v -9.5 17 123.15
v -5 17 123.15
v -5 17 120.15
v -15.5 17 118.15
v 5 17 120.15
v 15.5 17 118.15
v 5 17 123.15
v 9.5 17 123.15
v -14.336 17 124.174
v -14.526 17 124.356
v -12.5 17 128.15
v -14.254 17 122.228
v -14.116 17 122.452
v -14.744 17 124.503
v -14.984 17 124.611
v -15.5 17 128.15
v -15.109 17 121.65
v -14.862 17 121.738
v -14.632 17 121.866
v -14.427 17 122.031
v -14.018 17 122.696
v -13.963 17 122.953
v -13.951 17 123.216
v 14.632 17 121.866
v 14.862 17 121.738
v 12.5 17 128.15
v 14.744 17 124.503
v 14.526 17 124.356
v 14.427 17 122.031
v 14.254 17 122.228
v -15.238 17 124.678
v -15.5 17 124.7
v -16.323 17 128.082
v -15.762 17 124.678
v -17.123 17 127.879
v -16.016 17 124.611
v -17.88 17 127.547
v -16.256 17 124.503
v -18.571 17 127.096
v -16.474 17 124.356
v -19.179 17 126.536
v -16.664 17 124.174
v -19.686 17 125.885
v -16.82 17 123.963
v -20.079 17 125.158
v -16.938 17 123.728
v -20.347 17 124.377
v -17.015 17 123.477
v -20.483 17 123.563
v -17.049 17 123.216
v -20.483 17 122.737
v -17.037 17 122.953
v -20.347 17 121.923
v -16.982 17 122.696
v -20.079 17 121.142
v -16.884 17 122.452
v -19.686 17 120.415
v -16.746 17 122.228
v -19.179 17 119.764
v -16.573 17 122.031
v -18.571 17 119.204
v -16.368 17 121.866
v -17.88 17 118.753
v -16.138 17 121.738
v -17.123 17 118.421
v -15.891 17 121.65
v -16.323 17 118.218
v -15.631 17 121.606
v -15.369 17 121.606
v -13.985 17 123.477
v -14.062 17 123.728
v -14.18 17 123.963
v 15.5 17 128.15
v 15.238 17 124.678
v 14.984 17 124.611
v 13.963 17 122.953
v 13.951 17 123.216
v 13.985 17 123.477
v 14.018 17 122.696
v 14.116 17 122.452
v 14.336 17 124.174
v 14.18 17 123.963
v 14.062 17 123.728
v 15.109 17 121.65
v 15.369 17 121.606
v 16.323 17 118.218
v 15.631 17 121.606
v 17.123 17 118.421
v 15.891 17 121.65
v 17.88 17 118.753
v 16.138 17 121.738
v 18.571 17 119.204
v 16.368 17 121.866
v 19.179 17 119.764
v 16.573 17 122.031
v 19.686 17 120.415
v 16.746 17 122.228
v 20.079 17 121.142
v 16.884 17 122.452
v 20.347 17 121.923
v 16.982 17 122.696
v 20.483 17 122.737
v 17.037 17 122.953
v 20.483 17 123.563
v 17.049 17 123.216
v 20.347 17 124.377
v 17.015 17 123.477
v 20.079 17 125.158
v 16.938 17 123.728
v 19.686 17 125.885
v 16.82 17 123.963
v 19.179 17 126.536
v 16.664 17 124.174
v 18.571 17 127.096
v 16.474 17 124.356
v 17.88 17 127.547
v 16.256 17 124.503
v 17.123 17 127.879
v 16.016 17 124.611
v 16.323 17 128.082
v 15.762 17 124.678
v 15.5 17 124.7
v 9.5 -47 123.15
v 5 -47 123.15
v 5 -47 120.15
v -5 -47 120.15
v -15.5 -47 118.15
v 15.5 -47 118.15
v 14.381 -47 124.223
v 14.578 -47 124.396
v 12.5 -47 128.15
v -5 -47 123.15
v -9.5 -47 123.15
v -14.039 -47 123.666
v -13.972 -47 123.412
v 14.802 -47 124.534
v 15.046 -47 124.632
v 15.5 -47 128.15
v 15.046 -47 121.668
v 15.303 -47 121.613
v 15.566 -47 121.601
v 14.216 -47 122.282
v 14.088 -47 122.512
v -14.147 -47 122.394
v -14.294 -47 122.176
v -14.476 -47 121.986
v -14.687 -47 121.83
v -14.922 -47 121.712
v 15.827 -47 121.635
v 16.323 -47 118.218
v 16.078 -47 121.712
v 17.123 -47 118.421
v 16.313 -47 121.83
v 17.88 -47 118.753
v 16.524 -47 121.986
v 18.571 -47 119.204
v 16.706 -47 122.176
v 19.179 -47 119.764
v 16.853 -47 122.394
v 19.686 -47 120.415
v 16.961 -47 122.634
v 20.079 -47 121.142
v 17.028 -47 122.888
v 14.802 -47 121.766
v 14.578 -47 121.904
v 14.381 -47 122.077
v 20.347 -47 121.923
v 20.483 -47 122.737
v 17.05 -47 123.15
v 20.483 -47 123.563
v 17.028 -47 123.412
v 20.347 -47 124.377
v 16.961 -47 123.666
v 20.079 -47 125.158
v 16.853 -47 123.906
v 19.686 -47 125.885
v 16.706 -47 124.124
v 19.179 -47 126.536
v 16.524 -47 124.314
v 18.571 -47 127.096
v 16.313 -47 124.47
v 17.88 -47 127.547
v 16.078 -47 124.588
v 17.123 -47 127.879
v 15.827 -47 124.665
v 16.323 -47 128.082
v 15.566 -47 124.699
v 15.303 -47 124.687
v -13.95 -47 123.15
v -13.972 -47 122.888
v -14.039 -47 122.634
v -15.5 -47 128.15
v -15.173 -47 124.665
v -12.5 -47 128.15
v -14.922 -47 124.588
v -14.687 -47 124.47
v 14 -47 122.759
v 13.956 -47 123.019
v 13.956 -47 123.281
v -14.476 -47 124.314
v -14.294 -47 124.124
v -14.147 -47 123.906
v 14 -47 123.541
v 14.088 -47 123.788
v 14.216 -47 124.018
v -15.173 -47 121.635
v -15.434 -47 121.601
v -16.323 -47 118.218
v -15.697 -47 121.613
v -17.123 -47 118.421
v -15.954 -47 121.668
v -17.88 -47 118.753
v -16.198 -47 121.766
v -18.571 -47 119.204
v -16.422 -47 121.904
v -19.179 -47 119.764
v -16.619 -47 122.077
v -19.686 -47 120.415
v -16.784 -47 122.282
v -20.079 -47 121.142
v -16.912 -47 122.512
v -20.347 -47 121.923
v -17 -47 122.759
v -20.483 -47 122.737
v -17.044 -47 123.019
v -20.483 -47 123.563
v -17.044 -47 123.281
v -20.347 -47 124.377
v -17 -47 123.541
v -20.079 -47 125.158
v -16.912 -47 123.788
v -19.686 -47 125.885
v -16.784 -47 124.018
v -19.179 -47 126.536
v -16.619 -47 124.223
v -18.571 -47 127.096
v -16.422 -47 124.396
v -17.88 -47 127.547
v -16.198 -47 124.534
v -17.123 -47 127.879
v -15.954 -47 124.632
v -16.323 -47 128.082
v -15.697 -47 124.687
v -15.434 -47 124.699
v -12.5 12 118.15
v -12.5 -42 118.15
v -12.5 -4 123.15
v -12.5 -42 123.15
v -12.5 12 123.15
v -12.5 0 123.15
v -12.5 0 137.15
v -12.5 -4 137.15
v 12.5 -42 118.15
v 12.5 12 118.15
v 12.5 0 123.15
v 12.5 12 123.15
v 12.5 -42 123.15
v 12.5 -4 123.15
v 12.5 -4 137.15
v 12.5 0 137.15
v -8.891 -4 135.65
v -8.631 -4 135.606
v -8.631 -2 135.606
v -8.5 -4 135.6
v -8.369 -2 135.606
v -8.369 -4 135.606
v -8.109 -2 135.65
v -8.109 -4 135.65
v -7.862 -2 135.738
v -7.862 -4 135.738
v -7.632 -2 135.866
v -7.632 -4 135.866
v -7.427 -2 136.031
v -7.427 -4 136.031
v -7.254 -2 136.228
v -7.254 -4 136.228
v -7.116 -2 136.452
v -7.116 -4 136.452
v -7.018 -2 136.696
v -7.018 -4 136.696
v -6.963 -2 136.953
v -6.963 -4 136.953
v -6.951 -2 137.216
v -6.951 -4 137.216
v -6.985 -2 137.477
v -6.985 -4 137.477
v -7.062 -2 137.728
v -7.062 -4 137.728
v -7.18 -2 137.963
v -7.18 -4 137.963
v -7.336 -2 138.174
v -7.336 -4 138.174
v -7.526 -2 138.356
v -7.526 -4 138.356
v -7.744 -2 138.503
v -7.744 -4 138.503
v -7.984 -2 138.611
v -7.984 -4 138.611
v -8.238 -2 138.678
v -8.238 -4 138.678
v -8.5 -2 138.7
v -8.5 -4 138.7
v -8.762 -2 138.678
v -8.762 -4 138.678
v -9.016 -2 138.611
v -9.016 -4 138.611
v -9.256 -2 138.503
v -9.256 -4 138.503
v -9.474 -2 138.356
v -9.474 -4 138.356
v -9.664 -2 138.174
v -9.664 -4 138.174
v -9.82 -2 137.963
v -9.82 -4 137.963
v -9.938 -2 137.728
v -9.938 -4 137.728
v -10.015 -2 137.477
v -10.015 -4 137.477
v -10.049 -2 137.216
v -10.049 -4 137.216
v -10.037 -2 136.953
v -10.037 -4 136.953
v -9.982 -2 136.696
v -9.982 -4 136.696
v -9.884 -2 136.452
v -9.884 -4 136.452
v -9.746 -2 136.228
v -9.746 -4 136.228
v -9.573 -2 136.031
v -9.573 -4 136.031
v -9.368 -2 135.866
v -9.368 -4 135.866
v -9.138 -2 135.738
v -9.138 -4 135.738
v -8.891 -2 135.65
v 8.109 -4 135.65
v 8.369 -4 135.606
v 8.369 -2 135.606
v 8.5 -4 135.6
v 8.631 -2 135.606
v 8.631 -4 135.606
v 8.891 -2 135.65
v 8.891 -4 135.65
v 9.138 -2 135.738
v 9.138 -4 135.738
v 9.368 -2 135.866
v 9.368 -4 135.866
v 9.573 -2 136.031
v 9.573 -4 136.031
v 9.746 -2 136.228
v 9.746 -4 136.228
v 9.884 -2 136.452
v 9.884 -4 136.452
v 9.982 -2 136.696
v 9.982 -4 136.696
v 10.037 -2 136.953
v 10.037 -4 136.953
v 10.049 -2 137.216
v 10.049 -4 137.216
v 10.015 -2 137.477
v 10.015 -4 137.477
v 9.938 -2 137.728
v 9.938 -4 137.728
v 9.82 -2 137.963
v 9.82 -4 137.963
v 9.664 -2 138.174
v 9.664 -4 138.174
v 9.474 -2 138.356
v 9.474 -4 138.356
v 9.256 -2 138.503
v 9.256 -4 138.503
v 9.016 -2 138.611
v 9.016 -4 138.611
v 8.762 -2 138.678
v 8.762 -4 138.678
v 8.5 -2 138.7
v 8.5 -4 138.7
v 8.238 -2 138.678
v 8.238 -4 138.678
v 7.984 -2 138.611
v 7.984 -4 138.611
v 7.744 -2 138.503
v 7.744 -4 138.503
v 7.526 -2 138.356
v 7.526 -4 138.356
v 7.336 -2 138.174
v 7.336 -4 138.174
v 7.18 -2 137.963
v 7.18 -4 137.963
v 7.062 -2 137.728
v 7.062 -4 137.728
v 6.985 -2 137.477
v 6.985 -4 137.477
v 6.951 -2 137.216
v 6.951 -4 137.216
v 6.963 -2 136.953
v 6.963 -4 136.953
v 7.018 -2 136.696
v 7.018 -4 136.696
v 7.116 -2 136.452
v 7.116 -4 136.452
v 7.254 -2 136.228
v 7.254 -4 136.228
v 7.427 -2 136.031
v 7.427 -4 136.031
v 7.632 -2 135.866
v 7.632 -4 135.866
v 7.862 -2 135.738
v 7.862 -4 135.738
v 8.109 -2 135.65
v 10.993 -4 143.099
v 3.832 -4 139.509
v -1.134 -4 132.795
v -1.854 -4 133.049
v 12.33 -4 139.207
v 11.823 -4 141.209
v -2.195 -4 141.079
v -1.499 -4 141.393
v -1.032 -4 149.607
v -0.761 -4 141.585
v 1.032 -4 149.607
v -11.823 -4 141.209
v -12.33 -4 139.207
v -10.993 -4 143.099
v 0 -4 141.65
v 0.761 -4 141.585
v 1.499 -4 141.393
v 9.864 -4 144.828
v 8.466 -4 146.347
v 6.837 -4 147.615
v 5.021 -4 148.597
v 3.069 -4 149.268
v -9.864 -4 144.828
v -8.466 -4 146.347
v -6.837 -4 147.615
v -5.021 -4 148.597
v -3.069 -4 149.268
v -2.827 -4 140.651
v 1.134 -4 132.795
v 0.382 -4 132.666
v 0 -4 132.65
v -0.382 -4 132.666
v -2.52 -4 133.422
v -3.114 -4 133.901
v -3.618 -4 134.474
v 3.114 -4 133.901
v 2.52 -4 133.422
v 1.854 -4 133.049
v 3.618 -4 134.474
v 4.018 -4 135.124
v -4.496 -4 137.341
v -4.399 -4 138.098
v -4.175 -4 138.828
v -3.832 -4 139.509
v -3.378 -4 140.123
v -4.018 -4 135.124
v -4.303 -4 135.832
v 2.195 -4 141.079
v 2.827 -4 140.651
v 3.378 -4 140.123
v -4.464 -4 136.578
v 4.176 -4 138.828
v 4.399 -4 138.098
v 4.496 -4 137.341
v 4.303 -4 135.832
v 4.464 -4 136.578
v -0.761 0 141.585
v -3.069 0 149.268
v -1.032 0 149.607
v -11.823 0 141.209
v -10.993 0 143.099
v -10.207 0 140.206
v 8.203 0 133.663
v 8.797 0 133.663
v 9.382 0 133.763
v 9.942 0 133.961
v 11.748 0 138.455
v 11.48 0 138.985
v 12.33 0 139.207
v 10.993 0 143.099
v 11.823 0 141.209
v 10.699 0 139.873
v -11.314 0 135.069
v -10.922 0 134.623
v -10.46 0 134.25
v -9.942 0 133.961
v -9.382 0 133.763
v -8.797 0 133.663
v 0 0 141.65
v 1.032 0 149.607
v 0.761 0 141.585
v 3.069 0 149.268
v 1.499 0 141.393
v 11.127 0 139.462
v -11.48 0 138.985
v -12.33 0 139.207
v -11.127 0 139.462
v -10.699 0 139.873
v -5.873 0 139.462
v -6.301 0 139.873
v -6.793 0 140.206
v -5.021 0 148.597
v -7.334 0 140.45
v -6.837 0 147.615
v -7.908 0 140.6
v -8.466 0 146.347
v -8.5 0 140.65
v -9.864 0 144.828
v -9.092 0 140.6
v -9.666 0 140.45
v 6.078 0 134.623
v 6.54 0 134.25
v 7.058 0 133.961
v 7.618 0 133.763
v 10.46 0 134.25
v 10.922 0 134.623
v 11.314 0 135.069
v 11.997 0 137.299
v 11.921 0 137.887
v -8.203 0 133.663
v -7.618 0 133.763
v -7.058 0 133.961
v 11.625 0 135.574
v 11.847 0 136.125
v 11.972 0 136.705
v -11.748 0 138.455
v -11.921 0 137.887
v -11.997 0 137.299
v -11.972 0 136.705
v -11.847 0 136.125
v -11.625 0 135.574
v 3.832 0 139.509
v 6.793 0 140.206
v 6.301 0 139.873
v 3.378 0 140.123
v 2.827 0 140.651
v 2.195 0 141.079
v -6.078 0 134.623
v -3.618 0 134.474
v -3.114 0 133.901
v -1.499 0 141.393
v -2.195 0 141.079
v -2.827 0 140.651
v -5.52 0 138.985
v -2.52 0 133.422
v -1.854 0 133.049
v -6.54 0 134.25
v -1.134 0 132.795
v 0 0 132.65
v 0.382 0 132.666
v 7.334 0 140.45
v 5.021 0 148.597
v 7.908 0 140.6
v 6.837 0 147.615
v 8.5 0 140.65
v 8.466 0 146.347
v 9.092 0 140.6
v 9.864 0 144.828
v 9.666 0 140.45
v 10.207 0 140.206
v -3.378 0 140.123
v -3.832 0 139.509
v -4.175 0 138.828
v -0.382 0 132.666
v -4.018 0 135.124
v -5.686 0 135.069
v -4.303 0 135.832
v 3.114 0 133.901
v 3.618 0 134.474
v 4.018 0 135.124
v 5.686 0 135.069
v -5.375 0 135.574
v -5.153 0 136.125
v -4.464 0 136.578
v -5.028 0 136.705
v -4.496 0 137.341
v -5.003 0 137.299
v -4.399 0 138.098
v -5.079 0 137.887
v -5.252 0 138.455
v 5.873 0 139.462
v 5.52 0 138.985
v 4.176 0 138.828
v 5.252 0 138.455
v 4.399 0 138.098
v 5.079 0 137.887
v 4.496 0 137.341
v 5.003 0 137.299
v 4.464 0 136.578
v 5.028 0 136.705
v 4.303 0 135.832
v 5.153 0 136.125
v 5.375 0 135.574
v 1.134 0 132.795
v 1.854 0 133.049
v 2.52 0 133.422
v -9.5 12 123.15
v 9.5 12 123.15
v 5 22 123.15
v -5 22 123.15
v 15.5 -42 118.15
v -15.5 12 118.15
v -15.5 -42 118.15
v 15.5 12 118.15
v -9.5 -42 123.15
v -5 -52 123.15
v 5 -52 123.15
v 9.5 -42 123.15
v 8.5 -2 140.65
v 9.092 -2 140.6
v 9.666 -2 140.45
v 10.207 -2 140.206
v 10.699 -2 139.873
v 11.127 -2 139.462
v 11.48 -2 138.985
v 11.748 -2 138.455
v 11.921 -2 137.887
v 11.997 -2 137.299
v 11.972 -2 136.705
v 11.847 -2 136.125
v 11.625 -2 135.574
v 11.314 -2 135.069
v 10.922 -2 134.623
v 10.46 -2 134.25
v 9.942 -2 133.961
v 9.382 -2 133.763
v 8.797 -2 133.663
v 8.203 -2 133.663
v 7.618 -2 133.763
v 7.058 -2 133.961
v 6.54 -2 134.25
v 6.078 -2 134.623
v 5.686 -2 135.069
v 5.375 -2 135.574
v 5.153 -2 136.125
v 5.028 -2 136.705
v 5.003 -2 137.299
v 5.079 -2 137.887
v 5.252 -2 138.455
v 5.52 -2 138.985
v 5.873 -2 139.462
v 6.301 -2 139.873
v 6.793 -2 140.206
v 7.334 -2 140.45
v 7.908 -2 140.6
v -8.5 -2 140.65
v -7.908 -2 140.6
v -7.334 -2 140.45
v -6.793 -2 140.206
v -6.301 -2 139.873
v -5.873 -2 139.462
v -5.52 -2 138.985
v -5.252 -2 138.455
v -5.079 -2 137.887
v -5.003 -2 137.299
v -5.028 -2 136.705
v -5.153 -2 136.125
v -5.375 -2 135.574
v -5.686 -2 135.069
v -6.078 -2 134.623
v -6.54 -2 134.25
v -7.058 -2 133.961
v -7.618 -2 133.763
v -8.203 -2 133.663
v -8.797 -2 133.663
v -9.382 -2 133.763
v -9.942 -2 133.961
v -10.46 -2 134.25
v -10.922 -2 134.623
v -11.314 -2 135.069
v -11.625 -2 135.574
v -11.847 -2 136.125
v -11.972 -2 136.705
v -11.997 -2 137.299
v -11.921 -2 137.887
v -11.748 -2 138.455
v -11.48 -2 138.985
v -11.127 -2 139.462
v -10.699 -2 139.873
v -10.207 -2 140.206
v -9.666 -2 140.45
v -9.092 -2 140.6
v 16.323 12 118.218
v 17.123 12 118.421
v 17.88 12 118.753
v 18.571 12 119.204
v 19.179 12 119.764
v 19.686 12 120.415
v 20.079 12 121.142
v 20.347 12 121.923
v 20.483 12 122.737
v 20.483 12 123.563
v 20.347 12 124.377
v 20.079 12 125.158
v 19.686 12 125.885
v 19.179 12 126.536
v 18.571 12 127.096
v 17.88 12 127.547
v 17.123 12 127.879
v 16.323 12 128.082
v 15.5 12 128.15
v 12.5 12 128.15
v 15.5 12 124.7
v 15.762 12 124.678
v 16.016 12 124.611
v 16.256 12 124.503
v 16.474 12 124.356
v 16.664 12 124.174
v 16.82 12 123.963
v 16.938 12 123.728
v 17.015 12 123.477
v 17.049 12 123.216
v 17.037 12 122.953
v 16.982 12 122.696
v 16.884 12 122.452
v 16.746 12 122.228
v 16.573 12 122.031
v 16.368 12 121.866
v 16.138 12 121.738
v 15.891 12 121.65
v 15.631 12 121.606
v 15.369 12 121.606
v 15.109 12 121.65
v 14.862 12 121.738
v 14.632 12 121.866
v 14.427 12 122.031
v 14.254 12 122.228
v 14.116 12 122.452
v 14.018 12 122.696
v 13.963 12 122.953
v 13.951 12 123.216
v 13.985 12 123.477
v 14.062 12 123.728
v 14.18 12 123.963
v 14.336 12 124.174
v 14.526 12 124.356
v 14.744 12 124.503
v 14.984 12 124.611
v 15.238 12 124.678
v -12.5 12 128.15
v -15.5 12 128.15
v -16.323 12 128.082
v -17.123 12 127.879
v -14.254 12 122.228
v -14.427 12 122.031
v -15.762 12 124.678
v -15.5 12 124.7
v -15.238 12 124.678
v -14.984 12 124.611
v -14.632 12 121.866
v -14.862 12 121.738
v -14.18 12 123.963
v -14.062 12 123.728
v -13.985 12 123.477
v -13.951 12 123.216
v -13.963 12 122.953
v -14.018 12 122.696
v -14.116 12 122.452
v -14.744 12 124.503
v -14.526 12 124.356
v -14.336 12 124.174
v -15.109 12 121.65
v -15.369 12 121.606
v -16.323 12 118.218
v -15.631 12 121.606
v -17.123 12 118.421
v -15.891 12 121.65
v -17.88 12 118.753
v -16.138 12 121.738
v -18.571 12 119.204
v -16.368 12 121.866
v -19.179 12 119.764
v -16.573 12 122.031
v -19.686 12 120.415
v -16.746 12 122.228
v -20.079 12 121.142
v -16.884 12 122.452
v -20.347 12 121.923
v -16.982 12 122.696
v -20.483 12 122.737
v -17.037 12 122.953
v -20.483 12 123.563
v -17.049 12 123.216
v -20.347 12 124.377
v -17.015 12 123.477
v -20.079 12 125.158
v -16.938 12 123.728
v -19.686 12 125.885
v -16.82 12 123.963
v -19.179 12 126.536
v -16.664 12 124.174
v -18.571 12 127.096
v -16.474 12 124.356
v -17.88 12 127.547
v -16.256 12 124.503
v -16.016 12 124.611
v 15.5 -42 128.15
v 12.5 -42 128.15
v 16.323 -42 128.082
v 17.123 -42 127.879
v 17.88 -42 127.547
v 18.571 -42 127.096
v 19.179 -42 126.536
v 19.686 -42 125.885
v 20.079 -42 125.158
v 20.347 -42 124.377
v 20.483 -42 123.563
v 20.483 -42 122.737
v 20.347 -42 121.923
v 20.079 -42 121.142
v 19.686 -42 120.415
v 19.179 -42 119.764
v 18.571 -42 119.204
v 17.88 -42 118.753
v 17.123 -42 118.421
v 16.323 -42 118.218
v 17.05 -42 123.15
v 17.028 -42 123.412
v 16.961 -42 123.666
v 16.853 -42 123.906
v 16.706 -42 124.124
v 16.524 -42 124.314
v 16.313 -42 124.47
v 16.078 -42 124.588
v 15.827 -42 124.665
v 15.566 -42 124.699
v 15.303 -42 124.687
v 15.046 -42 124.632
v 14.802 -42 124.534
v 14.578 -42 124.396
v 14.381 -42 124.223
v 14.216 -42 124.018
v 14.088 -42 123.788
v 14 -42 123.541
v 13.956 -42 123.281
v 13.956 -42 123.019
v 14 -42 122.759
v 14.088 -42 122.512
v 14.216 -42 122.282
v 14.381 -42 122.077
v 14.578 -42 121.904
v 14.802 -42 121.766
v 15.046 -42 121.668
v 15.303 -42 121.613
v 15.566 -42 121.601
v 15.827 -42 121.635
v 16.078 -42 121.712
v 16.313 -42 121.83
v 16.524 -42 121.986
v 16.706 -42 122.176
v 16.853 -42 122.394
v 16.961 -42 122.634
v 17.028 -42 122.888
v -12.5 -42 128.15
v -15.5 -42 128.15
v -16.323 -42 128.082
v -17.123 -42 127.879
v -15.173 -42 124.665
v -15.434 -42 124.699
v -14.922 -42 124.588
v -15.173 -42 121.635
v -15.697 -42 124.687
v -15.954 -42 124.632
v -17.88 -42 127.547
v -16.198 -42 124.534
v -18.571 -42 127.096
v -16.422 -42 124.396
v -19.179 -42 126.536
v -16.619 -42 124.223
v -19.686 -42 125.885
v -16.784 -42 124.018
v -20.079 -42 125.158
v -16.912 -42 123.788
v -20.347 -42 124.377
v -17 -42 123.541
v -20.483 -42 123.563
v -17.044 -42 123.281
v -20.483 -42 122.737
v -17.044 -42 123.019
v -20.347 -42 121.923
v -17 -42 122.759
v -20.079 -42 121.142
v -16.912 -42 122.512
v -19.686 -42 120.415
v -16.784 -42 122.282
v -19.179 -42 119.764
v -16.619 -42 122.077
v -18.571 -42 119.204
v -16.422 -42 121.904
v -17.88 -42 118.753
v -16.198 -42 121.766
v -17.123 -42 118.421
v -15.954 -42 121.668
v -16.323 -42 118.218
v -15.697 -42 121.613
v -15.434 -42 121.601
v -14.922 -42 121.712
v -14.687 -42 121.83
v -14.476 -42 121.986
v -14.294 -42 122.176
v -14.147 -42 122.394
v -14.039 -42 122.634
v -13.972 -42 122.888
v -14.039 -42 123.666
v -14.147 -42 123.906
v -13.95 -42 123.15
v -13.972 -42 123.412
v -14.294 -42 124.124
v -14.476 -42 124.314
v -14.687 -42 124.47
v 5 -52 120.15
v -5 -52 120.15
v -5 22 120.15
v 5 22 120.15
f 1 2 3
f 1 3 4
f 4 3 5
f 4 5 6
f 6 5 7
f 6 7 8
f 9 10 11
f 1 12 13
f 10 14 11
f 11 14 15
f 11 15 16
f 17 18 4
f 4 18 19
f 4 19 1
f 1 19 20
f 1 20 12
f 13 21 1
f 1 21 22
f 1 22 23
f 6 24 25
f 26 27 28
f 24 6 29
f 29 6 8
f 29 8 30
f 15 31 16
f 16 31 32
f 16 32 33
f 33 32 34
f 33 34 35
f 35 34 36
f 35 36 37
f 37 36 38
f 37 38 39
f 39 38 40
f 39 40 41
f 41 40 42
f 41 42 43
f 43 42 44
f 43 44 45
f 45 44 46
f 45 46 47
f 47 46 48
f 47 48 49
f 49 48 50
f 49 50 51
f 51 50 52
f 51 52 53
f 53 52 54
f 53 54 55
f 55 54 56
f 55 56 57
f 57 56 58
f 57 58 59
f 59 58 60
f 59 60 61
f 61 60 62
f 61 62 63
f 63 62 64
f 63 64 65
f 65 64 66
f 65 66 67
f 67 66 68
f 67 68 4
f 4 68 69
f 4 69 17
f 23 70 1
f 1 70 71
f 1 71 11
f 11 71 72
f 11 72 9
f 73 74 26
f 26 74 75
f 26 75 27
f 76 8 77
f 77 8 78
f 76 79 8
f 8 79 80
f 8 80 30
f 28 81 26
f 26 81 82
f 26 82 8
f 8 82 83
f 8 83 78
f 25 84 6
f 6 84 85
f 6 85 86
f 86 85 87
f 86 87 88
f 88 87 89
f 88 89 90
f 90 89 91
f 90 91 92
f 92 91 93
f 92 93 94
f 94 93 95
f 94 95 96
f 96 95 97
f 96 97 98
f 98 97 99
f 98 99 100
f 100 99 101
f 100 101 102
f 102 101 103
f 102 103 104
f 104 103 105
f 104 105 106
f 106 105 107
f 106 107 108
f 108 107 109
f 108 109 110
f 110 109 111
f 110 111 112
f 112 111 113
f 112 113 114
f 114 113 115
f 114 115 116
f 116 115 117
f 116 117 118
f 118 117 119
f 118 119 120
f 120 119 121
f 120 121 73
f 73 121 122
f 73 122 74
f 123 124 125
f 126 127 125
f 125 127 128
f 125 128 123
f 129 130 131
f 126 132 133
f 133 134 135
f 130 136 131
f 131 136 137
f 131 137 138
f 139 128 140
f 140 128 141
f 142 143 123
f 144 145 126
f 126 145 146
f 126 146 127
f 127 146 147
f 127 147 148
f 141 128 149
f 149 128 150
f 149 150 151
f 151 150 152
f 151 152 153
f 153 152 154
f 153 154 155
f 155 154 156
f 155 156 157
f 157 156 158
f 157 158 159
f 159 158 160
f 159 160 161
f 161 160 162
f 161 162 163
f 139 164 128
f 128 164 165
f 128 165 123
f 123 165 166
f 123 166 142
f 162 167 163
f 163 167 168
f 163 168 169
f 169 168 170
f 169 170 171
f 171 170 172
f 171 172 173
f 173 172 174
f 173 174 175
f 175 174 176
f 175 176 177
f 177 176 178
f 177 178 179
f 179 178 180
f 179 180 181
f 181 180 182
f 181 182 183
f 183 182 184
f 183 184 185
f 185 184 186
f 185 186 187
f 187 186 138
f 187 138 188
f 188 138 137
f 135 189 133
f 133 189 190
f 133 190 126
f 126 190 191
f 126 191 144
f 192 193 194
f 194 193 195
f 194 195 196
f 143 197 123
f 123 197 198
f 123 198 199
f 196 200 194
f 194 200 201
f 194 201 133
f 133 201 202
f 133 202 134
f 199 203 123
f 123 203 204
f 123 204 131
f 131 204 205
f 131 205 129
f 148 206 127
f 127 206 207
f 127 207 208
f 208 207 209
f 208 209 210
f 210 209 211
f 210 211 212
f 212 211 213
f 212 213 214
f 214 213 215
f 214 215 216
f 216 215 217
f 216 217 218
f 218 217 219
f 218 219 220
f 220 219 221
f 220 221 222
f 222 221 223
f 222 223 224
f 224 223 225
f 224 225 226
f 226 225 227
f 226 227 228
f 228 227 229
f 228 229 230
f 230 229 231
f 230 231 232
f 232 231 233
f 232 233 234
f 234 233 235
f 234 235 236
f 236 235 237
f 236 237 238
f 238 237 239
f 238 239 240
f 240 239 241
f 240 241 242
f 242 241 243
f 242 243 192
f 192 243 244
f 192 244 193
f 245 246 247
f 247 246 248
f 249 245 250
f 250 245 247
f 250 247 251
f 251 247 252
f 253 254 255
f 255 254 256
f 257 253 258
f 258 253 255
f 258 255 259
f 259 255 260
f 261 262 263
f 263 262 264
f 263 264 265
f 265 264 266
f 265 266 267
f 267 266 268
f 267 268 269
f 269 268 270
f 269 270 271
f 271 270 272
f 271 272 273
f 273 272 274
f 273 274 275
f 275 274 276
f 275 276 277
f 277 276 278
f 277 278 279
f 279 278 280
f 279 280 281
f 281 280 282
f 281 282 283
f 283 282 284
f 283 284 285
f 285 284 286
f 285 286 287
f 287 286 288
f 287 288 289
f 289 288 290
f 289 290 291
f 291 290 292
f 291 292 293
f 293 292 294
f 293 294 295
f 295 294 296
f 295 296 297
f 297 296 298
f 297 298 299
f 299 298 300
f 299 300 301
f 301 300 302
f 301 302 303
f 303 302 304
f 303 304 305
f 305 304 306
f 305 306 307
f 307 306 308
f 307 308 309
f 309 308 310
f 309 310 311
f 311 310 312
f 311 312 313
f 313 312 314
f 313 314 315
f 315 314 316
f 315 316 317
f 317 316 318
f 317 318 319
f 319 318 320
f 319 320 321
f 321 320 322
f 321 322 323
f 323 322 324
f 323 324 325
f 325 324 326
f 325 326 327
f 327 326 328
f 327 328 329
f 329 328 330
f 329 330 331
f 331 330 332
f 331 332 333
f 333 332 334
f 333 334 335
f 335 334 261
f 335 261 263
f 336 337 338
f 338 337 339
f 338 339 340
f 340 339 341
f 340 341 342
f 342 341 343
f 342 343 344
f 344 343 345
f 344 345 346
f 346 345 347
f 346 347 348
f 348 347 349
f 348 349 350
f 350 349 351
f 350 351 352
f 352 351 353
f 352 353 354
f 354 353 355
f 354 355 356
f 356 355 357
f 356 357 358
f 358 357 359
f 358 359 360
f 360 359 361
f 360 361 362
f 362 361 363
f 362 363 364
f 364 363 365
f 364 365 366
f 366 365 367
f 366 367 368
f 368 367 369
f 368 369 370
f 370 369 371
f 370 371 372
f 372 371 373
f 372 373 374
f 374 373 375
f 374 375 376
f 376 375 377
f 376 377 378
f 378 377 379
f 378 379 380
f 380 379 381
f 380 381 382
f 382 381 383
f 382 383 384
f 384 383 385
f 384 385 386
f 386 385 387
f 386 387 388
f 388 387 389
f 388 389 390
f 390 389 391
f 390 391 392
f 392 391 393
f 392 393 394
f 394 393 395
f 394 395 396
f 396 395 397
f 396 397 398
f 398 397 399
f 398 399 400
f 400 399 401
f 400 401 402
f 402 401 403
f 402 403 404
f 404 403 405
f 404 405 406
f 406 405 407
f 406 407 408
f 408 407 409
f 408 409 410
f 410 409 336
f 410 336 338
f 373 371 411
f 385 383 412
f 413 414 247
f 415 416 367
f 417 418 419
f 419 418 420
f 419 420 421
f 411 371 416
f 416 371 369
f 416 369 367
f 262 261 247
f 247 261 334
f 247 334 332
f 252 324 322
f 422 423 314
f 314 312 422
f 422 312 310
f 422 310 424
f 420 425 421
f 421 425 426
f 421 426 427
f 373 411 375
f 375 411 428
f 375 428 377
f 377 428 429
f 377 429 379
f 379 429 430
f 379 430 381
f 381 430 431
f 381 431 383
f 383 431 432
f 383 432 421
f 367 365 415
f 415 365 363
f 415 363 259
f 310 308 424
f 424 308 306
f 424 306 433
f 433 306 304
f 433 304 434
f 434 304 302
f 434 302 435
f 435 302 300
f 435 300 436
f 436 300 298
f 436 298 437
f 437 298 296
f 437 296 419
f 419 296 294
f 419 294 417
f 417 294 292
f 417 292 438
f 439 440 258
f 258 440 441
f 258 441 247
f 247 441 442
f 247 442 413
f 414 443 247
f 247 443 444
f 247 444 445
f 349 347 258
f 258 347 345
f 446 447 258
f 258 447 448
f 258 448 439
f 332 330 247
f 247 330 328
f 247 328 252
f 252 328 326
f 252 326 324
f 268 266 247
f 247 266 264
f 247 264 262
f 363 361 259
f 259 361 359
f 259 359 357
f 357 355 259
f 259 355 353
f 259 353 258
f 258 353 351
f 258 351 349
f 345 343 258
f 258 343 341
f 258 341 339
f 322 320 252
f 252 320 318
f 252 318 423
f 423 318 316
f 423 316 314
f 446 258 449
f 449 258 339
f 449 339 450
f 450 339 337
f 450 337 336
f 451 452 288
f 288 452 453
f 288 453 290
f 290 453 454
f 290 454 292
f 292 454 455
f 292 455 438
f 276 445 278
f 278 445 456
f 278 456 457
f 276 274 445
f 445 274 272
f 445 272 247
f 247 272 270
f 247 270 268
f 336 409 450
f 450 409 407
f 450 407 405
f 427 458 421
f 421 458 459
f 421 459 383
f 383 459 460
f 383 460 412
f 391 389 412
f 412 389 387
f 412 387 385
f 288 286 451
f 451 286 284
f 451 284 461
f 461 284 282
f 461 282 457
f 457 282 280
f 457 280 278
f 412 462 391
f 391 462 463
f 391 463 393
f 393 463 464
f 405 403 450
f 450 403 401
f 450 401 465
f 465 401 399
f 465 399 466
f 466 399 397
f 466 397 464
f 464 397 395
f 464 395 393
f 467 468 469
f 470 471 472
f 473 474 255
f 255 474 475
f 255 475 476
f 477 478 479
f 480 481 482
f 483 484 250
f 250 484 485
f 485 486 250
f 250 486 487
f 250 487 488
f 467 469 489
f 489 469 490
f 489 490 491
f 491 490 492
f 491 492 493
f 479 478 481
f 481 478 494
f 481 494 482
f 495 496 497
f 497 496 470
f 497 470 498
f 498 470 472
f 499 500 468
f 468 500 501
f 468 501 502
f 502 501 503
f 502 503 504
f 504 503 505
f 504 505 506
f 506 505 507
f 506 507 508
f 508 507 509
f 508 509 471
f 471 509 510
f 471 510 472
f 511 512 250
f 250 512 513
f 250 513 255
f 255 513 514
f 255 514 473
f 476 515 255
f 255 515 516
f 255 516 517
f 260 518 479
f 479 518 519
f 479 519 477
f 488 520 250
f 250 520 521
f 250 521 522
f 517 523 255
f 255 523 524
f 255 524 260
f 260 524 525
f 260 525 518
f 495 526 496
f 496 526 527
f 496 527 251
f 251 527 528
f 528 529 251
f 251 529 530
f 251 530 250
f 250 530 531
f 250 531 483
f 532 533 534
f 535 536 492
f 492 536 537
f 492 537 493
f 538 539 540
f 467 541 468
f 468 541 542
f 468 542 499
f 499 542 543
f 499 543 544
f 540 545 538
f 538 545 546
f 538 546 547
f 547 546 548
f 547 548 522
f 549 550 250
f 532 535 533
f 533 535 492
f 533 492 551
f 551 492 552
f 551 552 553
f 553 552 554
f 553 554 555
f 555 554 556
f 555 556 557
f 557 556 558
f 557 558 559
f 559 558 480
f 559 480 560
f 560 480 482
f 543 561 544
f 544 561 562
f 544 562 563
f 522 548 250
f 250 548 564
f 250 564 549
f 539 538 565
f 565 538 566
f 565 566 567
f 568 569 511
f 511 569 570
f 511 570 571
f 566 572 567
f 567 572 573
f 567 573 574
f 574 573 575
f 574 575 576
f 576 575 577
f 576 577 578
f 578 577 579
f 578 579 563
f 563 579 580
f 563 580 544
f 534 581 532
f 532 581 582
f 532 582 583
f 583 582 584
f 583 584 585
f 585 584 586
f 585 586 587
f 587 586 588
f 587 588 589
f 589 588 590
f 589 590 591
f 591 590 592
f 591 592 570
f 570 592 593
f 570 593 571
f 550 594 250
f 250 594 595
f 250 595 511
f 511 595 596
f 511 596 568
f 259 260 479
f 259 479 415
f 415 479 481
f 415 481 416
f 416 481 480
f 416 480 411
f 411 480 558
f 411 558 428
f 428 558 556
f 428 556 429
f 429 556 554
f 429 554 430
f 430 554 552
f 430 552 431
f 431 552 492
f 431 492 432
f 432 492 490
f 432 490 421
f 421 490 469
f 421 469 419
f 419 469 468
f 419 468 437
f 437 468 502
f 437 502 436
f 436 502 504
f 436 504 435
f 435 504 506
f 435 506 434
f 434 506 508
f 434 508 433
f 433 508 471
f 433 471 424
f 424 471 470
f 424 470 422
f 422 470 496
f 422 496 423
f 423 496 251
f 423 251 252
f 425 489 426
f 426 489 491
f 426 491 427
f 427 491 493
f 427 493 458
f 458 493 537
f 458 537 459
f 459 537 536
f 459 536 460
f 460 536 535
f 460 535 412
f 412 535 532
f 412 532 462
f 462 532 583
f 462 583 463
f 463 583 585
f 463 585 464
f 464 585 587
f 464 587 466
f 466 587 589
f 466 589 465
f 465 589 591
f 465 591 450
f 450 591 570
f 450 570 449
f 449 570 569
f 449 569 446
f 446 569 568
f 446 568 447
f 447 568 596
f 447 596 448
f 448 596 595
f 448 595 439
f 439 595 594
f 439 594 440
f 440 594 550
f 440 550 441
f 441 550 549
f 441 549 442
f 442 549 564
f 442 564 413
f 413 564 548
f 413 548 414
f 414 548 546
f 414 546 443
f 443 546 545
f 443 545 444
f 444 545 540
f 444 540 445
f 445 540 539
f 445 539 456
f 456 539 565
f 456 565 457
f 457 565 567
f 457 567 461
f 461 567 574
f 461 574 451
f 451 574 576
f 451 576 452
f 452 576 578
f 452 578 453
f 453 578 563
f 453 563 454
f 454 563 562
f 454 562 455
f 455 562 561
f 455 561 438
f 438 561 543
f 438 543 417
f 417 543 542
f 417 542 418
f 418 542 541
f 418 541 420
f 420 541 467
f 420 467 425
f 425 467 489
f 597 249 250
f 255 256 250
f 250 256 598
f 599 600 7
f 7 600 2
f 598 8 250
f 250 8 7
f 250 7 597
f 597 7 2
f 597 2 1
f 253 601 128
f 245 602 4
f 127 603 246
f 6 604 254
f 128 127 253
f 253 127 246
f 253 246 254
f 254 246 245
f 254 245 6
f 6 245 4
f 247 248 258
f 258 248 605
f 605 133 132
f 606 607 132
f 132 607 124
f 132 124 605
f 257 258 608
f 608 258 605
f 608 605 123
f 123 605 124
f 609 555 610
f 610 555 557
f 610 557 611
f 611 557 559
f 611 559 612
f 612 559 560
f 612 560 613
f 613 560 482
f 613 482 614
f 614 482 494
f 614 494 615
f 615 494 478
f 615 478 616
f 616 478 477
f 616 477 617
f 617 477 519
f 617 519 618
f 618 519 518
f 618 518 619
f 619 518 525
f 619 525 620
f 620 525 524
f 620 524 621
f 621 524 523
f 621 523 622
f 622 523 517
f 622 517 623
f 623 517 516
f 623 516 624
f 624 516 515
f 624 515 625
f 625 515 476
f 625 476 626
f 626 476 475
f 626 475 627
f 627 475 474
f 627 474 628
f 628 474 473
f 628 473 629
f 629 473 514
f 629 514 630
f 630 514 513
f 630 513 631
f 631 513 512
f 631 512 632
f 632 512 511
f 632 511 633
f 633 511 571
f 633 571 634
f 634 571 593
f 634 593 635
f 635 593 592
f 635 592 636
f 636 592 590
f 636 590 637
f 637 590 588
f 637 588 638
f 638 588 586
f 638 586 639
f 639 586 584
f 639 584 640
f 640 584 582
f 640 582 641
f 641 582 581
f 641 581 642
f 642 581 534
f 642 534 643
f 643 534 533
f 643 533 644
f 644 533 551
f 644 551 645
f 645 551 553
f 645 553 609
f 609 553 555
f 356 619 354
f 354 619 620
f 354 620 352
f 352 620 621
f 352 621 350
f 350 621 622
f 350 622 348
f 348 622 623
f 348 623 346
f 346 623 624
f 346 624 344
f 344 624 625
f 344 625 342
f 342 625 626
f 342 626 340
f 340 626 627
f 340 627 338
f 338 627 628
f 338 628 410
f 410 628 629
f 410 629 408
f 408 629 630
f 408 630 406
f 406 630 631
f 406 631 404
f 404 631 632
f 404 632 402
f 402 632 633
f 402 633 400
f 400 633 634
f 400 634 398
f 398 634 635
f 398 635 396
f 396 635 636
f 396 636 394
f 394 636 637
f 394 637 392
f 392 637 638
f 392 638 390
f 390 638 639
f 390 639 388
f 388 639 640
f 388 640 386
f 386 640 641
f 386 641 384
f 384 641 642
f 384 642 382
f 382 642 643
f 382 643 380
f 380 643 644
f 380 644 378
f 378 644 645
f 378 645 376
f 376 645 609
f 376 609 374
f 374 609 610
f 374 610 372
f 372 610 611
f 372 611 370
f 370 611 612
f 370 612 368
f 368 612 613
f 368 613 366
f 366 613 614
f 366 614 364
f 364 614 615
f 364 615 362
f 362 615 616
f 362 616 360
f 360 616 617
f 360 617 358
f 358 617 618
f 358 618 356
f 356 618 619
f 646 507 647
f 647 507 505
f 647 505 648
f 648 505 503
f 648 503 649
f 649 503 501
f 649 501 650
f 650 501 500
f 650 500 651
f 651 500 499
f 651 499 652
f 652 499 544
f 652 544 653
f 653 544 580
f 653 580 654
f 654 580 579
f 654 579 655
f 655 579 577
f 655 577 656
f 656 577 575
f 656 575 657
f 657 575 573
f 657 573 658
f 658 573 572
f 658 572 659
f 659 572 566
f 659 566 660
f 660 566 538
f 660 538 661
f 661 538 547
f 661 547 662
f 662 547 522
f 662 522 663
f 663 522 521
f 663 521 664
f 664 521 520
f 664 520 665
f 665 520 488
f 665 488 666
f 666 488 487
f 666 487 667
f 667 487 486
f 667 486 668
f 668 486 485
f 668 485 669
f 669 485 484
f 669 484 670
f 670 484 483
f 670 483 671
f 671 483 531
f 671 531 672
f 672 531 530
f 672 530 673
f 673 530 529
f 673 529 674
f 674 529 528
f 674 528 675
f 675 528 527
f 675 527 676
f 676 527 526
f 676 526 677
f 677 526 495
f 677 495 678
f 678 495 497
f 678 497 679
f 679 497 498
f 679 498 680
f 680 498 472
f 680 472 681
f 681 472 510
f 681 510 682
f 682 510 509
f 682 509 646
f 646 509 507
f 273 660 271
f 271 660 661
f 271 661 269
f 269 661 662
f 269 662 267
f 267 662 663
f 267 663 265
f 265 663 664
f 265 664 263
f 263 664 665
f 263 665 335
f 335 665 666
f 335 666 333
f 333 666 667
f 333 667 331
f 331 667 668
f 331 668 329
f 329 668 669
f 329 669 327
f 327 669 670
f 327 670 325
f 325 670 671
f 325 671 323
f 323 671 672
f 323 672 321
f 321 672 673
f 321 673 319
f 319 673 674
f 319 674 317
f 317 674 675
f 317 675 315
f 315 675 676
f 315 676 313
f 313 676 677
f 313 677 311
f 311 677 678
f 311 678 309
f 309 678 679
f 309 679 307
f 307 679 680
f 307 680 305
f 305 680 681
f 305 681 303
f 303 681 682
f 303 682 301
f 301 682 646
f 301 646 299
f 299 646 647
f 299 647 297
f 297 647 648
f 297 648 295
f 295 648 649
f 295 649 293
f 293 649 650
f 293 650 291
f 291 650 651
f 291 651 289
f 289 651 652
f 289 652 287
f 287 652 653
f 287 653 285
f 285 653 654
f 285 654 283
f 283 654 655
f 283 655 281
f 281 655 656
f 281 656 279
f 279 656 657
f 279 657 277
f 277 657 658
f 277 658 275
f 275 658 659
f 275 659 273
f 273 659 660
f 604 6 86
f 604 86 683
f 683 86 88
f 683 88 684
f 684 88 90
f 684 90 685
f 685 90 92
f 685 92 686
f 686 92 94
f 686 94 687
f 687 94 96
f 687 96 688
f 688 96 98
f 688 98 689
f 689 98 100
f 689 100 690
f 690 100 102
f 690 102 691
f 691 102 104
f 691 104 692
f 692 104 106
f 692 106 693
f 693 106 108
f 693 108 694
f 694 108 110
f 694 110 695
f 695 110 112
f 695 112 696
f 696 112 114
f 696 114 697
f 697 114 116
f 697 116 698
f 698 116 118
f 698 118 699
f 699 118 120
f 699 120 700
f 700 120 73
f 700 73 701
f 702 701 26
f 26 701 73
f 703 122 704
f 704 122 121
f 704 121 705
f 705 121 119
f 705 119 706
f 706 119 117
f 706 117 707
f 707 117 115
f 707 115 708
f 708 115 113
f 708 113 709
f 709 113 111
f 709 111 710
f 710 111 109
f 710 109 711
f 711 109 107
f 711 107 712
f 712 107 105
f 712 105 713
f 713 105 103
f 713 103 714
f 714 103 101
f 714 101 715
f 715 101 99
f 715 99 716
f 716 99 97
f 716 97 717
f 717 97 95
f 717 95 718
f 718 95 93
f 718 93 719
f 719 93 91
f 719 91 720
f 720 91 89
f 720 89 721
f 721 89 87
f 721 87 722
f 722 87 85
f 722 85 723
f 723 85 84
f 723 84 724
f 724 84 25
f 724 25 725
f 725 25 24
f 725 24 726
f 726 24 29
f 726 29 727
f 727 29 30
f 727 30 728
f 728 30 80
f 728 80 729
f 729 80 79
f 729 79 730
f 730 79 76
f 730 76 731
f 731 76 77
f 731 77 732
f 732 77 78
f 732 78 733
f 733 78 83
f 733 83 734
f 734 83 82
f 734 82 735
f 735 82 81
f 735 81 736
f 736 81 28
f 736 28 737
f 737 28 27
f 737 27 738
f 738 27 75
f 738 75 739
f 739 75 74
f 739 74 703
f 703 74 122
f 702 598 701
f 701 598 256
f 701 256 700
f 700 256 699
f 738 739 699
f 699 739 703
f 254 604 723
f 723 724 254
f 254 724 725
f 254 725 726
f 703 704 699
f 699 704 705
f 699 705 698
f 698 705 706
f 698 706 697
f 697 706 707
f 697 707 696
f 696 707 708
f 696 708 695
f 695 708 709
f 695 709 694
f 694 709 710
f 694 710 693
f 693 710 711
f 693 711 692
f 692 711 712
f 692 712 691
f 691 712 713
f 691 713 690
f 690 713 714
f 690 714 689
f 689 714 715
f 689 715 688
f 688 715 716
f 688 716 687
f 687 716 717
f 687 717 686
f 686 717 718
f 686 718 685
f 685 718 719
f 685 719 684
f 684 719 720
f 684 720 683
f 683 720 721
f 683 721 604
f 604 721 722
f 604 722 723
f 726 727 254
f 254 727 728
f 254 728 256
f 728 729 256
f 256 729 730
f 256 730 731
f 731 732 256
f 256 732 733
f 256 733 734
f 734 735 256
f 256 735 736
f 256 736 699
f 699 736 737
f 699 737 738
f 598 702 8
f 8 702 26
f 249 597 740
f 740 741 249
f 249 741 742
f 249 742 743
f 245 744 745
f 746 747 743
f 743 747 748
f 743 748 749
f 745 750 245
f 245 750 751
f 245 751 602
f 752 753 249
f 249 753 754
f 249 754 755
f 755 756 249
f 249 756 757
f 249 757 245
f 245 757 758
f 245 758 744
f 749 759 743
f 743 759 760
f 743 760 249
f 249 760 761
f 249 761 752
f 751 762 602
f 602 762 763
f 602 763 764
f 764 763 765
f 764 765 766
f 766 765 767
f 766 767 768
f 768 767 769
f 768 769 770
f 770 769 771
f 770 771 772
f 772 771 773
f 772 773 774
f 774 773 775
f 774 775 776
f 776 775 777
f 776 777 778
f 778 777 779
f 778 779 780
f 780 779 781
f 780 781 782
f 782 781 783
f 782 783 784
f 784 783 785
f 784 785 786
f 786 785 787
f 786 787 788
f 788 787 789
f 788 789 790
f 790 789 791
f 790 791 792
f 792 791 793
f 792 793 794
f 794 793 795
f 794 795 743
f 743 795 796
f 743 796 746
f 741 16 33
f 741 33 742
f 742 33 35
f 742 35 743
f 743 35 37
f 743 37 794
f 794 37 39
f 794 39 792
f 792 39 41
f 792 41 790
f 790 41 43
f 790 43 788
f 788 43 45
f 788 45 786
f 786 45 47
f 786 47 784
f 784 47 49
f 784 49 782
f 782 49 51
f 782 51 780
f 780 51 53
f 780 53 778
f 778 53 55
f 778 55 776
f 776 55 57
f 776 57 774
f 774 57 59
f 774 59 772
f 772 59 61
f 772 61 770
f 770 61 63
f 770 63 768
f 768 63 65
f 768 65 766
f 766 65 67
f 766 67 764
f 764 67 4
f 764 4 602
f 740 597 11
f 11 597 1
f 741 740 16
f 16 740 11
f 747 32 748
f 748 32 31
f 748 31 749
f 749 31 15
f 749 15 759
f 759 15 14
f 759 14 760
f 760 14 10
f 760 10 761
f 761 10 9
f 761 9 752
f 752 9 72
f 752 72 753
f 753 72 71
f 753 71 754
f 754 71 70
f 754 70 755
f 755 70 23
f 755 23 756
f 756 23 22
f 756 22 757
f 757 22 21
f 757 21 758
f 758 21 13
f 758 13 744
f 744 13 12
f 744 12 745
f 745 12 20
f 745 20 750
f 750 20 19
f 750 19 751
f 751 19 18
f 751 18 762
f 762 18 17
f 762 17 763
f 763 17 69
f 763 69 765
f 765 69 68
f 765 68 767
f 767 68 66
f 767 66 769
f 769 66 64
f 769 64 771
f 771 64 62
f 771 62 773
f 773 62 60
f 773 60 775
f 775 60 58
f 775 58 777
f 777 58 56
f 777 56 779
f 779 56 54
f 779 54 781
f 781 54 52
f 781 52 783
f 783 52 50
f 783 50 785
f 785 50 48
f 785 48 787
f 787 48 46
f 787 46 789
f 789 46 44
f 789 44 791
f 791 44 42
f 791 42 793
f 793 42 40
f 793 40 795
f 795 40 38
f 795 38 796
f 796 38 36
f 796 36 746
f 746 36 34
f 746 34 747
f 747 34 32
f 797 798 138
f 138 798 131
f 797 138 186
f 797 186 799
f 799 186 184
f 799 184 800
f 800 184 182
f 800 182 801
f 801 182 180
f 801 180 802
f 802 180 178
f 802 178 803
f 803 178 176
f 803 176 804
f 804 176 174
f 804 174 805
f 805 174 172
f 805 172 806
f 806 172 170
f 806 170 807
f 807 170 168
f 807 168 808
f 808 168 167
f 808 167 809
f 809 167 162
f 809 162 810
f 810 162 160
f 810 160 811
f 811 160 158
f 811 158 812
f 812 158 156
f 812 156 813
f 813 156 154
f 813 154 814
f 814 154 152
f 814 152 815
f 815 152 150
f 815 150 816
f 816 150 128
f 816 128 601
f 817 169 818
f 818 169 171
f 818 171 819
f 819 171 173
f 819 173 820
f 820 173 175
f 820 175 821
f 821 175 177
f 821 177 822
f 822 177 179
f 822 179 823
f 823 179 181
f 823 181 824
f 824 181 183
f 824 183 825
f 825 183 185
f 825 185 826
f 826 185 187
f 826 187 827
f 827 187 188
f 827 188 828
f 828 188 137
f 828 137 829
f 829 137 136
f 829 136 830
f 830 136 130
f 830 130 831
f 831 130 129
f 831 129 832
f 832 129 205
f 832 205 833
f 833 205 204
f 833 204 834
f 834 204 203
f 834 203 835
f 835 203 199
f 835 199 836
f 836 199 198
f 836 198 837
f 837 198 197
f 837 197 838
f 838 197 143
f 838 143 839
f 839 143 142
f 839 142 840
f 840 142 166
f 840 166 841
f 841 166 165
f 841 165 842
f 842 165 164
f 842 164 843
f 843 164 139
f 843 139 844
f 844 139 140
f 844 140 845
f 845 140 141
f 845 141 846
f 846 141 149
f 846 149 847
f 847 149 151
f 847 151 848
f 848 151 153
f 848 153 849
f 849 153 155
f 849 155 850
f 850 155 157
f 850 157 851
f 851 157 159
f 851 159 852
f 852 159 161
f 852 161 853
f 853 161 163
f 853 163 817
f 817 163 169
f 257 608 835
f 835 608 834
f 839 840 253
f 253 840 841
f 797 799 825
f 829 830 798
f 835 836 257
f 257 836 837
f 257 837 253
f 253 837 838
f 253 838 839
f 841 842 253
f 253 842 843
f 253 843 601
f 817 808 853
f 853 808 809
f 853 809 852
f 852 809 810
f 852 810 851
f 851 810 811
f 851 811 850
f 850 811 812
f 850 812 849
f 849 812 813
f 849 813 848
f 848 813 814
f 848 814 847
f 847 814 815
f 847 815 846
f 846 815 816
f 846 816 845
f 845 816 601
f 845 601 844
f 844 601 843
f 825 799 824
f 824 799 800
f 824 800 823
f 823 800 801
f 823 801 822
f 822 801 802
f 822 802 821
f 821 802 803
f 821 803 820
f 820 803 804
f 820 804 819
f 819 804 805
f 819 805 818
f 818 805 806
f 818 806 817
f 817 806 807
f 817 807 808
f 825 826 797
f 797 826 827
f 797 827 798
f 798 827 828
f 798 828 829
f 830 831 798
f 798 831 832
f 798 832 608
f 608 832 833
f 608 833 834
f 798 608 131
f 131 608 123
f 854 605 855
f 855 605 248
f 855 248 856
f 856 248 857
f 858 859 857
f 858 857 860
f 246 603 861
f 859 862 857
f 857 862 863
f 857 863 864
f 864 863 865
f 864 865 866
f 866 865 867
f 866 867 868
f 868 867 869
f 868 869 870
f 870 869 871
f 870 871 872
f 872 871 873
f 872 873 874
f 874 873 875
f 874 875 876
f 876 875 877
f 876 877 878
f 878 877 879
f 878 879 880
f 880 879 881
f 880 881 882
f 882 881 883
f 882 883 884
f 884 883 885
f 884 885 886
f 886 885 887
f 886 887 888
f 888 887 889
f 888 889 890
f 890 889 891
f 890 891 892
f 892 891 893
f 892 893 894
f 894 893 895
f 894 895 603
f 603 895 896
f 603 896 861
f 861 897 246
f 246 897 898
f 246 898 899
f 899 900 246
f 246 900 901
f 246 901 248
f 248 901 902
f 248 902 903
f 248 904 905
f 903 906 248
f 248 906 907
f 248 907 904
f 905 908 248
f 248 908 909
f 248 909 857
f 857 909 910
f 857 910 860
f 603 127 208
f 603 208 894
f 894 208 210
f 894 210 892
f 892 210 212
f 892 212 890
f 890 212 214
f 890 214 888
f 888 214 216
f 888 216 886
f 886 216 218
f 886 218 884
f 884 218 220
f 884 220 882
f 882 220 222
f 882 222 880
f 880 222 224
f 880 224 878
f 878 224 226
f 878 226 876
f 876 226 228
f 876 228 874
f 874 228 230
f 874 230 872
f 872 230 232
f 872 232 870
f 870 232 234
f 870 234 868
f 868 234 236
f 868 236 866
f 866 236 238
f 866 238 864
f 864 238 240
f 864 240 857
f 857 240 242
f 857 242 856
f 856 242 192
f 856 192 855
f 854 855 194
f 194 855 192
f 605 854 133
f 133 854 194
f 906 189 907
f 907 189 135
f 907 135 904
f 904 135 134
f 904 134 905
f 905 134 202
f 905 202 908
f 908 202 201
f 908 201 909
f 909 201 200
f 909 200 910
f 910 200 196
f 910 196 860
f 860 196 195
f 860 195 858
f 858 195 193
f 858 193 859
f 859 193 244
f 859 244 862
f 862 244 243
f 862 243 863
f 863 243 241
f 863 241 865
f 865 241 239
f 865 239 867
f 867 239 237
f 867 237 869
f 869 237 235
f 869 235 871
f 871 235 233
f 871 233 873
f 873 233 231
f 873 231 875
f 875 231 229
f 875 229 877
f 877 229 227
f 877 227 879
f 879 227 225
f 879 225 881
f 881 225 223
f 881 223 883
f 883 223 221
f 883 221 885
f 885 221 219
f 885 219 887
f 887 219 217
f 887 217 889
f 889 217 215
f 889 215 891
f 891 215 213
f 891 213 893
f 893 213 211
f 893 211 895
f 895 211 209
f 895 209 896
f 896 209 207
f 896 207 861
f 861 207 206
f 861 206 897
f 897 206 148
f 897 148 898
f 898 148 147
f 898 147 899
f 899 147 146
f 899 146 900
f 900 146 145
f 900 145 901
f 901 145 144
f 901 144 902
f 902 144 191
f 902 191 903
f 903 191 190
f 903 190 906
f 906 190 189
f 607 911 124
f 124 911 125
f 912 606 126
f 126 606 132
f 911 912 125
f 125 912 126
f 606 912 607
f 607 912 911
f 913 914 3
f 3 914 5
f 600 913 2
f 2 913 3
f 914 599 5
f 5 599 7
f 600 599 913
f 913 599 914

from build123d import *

# Parameters (mm, degrees)
SKETCH11_R          = 1.55
SKETCH11_R_2        = 4.5
BOSS_EXTRUDE1_DEPTH = 4
BOSS_EXTRUDE2_DEPTH = 5
SKETCH13_R          = 3.5
CUT_EXTRUDE1_DEPTH  = 2
SKETCH14_R          = 1.55
BOSS_EXTRUDE3_DEPTH = 5
BOSS_EXTRUDE4_START = -5
SKETCH15_R          = 1.55
BOSS_EXTRUDE4_DEPTH = 5
SKETCH16_W          = 10
SKETCH16_H          = 3
BOSS_EXTRUDE5_DEPTH = 5
SKETCH17_W          = 10
SKETCH17_H          = 3
BOSS_EXTRUDE6_DEPTH = 5


with BuildPart() as part:
    # Sketch11 → Boss-Extrude1 (new body)
    with BuildSketch(Plane(origin=(0, 0, 51.65), x_dir=(1, 0, 0), z_dir=(0, -1, 0))):
        with BuildLine():
            Line((12.5, 85.5), (12.5, 71.5))
            Line((12.5, 71.5), (-12.5, 71.5))
            Line((-12.5, 71.5), (-12.5, 85.5))
            ThreePointArc((-12.5, 85.5), (0, 98), (12.5, 85.5))
        make_face()
        with Locations(Location((-8.5, 85.5, 0), (0, 0, 270))):
            Circle(SKETCH11_R, mode=Mode.SUBTRACT)
        with Locations(Location((8.5, 85.5, 0), (0, 0, 270))):
            Circle(SKETCH11_R, mode=Mode.SUBTRACT)
        with Locations(Location((0, 85.5, 0), (0, 0, 270))):
            Circle(SKETCH11_R_2, mode=Mode.SUBTRACT)
    extrude(amount=BOSS_EXTRUDE1_DEPTH)

    # Sketch12 → Boss-Extrude2 (add)
    with BuildSketch(Plane(origin=(0, 0, 123.15), x_dir=(-1, 0, 0), z_dir=(0, 0, -1))):
        Polygon((-12.5, 0), (-12.5, 17), (12.5, 17), (12.5, 0), (12.5, -4), (12.5, -47), (-12.5, -47), (-12.5, -4), align=None)
    extrude(amount=BOSS_EXTRUDE2_DEPTH)

    # Sketch13 → Cut-Extrude1 (cut)
    with BuildSketch(Plane(origin=(0, 0, 0), x_dir=(1, 0, 0), z_dir=(0, 1, 0))):
        with Locations(Location((-8.5, -137.15, 0), (0, 0, 270))):
            Circle(SKETCH13_R)
        with Locations(Location((8.5, -137.15, 0), (0, 0, 270))):
            Circle(SKETCH13_R)
    extrude(amount=-CUT_EXTRUDE1_DEPTH, mode=Mode.SUBTRACT)

    # Sketch14 → Boss-Extrude3 (add)
    with BuildSketch(Plane(origin=(0, 17, 0), x_dir=(1, 0, 0), z_dir=(0, 1, 0))):
        with BuildLine():
            Line((15.5, -118.15), (-15.5, -118.15))
            ThreePointArc((-15.5, -118.15), (-20.5, -123.15), (-15.5, -128.15))
            Line((-15.5, -128.15), (-12.5, -128.15))
            Line((-12.5, -128.15), (-9.5, -123.15))
            Line((-9.5, -123.15), (9.5, -123.15))
            Line((9.5, -123.15), (12.5, -128.15))
            Line((12.5, -128.15), (15.5, -128.15))
            ThreePointArc((15.5, -128.15), (20.5, -123.15), (15.5, -118.15))
        make_face()
        with Locations(Location((-15.5, -123.15, 0), (0, 0, 270))):
            Circle(SKETCH14_R, mode=Mode.SUBTRACT)
        with Locations(Location((15.5, -123.15, 0), (0, 0, 270))):
            Circle(SKETCH14_R, mode=Mode.SUBTRACT)
    extrude(amount=-BOSS_EXTRUDE3_DEPTH)

    # Sketch15 → Boss-Extrude4 (add)
    with BuildSketch(Plane(origin=(0, -47, 0), x_dir=(-1, 0, 0), z_dir=(0, -1, 0)).offset(BOSS_EXTRUDE4_START)):
        with BuildLine():
            Line((15.5, -118.15), (-15.5, -118.15))
            ThreePointArc((-15.5, -118.15), (-20.5, -123.15), (-15.5, -128.15))
            Line((-15.5, -128.15), (-12.5, -128.15))
            Line((-12.5, -128.15), (-9.5, -123.15))
            Line((-9.5, -123.15), (9.5, -123.15))
            Line((9.5, -123.15), (12.5, -128.15))
            Line((12.5, -128.15), (15.5, -128.15))
            ThreePointArc((15.5, -128.15), (20.5, -123.15), (15.5, -118.15))
        make_face()
        with Locations(Location((15.5, -123.15, 0), (0, 0, 270))):
            Circle(SKETCH15_R, mode=Mode.SUBTRACT)
        with Locations(Location((-15.5, -123.15, 0), (0, 0, 270))):
            Circle(SKETCH15_R, mode=Mode.SUBTRACT)
    extrude(amount=BOSS_EXTRUDE4_DEPTH)

    # Sketch16 → Boss-Extrude5 (add)
    with BuildSketch(Plane.XZ.offset(47)):
        with Locations((0, 121.65)):
            Rectangle(SKETCH16_W, SKETCH16_H)
    extrude(amount=BOSS_EXTRUDE5_DEPTH)

    # Sketch17 → Boss-Extrude6 (add)
    with BuildSketch(Plane(origin=(0, 17, 0), x_dir=(1, 0, 0), z_dir=(0, 1, 0))):
        with Locations((0, -121.65)):
            Rectangle(SKETCH17_W, SKETCH17_H)
    extrude(amount=BOSS_EXTRUDE6_DEPTH)


solid = part.part
